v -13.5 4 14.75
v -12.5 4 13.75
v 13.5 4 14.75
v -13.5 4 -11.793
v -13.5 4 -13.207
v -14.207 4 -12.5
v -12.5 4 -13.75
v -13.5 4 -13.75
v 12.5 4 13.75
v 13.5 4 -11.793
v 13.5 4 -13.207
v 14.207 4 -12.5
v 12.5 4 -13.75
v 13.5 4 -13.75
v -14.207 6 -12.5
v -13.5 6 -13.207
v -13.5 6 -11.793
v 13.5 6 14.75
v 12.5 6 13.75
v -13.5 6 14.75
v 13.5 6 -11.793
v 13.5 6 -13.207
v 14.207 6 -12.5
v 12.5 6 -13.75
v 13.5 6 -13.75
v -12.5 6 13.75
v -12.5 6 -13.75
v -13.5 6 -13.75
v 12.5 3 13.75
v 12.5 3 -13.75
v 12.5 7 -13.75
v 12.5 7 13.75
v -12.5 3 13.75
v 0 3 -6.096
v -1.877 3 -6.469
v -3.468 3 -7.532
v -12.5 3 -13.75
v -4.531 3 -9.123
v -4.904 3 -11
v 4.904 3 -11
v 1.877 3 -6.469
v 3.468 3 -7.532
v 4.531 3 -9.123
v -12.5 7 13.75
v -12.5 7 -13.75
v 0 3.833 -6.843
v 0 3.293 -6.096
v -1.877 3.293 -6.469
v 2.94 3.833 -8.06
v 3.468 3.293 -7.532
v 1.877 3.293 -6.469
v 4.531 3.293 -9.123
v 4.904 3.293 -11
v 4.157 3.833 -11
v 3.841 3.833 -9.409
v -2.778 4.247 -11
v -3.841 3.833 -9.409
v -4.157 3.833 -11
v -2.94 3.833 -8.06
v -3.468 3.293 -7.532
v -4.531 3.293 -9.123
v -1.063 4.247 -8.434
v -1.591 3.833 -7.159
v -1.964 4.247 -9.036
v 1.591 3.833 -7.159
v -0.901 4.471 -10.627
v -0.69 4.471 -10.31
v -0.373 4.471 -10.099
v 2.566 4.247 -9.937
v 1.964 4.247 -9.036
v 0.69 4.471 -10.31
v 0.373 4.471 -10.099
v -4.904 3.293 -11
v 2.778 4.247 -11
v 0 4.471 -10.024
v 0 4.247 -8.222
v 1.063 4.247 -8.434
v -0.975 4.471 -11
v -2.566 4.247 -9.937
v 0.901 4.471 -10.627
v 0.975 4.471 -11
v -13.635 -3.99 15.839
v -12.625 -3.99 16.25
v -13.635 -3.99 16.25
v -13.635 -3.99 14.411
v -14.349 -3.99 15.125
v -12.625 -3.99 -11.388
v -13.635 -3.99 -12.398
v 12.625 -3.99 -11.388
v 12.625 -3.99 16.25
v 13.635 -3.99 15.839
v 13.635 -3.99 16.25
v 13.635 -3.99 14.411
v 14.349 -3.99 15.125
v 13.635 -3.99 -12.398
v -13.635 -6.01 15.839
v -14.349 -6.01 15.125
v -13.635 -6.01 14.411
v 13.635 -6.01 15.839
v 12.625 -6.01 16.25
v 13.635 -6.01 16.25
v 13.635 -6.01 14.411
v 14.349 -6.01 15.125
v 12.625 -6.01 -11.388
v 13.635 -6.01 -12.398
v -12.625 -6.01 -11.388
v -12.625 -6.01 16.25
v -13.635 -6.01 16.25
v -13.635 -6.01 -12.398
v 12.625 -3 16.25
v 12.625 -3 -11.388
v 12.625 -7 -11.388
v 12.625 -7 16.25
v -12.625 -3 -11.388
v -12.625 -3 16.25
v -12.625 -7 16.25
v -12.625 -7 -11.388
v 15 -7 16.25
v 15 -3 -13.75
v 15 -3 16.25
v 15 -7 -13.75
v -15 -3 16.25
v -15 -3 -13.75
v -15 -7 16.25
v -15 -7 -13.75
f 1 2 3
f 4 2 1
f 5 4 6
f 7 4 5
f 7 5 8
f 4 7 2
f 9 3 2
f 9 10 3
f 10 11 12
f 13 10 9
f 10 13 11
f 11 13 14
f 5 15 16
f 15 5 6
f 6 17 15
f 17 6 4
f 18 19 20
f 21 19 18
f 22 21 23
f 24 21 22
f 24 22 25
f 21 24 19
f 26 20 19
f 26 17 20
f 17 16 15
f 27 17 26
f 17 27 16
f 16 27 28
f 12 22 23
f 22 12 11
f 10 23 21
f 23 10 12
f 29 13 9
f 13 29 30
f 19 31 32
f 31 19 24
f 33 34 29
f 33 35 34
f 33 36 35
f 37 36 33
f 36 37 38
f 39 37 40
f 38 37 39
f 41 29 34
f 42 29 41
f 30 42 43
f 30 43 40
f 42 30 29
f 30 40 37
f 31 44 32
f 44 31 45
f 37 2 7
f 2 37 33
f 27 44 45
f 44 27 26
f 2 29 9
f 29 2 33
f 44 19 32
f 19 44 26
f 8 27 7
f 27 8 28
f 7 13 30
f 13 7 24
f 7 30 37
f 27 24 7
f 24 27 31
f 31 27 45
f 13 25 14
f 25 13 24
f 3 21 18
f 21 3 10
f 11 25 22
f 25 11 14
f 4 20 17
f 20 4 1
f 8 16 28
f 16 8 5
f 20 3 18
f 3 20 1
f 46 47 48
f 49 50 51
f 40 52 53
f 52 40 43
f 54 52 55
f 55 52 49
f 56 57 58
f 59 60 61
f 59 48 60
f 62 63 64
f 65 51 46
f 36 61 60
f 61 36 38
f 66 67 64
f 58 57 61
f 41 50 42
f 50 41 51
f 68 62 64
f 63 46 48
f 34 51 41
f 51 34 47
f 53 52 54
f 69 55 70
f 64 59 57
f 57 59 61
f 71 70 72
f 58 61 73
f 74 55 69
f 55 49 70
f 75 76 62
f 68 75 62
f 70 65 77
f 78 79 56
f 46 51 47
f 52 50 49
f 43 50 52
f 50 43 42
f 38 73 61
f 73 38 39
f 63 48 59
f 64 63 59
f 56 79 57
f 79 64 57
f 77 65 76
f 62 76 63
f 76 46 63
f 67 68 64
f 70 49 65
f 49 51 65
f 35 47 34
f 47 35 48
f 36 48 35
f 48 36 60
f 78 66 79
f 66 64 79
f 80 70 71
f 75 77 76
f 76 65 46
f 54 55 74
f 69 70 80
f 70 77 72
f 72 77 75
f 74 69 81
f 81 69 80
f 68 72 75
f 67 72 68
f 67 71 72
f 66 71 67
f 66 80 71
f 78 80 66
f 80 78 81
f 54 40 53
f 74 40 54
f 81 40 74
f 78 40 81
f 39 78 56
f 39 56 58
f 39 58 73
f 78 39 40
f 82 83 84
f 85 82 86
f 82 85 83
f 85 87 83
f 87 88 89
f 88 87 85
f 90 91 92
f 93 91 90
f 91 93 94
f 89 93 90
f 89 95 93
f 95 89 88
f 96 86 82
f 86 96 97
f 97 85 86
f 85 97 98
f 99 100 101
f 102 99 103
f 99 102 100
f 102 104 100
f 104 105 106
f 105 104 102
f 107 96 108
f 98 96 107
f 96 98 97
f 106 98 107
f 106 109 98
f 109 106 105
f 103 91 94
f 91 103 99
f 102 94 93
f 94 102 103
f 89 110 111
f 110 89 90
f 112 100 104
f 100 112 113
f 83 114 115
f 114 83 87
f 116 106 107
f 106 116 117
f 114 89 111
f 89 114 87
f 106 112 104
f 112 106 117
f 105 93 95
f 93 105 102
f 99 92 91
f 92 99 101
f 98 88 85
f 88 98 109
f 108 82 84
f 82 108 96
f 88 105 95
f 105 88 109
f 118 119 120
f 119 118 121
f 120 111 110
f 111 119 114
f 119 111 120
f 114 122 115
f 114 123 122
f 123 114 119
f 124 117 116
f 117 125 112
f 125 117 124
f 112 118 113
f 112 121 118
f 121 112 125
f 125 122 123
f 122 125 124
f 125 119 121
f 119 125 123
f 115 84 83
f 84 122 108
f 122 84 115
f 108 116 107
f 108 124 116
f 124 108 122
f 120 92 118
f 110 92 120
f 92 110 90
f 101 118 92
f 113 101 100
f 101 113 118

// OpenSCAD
module lock() {
    halfWidth=30/2-1.5;
    for(x=[-halfWidth, halfWidth]) {
        translate([x,-30/2+2.5,0])
         rotate([0,0,45]) 
         cube([1,1,2], center=true);
    }
}

module frameWithLock() {
    difference() {
        frame();
        lock();
    }
}

module door() {
    cube([25, 27.5, 4], center=true);
    translate([0, 0.5, 0]) cube([27, 28.5, 2], center=true);
    lock();
}

module frame() {
    difference() {
        translate([0, 1.25, 0]) cube([30, 30, 4], center=true);
        scale([1.01, 1.01, 1.01]) door();
    }
}

module doorHandle() {
    difference() {
        scale([1, 1, 0.3]) sphere(r=5);
        translate([0, -5, 0]) cube([10,10,10], center=true);
    }
    
}

module doorWithHandle() {
    difference() {
        door();
        translate([0,-30/2 + 4,2])doorHandle();
    }
}

translate([0, 5, 0]) rotate([90, 0, 0]) doorWithHandle();
translate([0, -5, 2.5]) rotate([-90, 0, 0]) frame();
